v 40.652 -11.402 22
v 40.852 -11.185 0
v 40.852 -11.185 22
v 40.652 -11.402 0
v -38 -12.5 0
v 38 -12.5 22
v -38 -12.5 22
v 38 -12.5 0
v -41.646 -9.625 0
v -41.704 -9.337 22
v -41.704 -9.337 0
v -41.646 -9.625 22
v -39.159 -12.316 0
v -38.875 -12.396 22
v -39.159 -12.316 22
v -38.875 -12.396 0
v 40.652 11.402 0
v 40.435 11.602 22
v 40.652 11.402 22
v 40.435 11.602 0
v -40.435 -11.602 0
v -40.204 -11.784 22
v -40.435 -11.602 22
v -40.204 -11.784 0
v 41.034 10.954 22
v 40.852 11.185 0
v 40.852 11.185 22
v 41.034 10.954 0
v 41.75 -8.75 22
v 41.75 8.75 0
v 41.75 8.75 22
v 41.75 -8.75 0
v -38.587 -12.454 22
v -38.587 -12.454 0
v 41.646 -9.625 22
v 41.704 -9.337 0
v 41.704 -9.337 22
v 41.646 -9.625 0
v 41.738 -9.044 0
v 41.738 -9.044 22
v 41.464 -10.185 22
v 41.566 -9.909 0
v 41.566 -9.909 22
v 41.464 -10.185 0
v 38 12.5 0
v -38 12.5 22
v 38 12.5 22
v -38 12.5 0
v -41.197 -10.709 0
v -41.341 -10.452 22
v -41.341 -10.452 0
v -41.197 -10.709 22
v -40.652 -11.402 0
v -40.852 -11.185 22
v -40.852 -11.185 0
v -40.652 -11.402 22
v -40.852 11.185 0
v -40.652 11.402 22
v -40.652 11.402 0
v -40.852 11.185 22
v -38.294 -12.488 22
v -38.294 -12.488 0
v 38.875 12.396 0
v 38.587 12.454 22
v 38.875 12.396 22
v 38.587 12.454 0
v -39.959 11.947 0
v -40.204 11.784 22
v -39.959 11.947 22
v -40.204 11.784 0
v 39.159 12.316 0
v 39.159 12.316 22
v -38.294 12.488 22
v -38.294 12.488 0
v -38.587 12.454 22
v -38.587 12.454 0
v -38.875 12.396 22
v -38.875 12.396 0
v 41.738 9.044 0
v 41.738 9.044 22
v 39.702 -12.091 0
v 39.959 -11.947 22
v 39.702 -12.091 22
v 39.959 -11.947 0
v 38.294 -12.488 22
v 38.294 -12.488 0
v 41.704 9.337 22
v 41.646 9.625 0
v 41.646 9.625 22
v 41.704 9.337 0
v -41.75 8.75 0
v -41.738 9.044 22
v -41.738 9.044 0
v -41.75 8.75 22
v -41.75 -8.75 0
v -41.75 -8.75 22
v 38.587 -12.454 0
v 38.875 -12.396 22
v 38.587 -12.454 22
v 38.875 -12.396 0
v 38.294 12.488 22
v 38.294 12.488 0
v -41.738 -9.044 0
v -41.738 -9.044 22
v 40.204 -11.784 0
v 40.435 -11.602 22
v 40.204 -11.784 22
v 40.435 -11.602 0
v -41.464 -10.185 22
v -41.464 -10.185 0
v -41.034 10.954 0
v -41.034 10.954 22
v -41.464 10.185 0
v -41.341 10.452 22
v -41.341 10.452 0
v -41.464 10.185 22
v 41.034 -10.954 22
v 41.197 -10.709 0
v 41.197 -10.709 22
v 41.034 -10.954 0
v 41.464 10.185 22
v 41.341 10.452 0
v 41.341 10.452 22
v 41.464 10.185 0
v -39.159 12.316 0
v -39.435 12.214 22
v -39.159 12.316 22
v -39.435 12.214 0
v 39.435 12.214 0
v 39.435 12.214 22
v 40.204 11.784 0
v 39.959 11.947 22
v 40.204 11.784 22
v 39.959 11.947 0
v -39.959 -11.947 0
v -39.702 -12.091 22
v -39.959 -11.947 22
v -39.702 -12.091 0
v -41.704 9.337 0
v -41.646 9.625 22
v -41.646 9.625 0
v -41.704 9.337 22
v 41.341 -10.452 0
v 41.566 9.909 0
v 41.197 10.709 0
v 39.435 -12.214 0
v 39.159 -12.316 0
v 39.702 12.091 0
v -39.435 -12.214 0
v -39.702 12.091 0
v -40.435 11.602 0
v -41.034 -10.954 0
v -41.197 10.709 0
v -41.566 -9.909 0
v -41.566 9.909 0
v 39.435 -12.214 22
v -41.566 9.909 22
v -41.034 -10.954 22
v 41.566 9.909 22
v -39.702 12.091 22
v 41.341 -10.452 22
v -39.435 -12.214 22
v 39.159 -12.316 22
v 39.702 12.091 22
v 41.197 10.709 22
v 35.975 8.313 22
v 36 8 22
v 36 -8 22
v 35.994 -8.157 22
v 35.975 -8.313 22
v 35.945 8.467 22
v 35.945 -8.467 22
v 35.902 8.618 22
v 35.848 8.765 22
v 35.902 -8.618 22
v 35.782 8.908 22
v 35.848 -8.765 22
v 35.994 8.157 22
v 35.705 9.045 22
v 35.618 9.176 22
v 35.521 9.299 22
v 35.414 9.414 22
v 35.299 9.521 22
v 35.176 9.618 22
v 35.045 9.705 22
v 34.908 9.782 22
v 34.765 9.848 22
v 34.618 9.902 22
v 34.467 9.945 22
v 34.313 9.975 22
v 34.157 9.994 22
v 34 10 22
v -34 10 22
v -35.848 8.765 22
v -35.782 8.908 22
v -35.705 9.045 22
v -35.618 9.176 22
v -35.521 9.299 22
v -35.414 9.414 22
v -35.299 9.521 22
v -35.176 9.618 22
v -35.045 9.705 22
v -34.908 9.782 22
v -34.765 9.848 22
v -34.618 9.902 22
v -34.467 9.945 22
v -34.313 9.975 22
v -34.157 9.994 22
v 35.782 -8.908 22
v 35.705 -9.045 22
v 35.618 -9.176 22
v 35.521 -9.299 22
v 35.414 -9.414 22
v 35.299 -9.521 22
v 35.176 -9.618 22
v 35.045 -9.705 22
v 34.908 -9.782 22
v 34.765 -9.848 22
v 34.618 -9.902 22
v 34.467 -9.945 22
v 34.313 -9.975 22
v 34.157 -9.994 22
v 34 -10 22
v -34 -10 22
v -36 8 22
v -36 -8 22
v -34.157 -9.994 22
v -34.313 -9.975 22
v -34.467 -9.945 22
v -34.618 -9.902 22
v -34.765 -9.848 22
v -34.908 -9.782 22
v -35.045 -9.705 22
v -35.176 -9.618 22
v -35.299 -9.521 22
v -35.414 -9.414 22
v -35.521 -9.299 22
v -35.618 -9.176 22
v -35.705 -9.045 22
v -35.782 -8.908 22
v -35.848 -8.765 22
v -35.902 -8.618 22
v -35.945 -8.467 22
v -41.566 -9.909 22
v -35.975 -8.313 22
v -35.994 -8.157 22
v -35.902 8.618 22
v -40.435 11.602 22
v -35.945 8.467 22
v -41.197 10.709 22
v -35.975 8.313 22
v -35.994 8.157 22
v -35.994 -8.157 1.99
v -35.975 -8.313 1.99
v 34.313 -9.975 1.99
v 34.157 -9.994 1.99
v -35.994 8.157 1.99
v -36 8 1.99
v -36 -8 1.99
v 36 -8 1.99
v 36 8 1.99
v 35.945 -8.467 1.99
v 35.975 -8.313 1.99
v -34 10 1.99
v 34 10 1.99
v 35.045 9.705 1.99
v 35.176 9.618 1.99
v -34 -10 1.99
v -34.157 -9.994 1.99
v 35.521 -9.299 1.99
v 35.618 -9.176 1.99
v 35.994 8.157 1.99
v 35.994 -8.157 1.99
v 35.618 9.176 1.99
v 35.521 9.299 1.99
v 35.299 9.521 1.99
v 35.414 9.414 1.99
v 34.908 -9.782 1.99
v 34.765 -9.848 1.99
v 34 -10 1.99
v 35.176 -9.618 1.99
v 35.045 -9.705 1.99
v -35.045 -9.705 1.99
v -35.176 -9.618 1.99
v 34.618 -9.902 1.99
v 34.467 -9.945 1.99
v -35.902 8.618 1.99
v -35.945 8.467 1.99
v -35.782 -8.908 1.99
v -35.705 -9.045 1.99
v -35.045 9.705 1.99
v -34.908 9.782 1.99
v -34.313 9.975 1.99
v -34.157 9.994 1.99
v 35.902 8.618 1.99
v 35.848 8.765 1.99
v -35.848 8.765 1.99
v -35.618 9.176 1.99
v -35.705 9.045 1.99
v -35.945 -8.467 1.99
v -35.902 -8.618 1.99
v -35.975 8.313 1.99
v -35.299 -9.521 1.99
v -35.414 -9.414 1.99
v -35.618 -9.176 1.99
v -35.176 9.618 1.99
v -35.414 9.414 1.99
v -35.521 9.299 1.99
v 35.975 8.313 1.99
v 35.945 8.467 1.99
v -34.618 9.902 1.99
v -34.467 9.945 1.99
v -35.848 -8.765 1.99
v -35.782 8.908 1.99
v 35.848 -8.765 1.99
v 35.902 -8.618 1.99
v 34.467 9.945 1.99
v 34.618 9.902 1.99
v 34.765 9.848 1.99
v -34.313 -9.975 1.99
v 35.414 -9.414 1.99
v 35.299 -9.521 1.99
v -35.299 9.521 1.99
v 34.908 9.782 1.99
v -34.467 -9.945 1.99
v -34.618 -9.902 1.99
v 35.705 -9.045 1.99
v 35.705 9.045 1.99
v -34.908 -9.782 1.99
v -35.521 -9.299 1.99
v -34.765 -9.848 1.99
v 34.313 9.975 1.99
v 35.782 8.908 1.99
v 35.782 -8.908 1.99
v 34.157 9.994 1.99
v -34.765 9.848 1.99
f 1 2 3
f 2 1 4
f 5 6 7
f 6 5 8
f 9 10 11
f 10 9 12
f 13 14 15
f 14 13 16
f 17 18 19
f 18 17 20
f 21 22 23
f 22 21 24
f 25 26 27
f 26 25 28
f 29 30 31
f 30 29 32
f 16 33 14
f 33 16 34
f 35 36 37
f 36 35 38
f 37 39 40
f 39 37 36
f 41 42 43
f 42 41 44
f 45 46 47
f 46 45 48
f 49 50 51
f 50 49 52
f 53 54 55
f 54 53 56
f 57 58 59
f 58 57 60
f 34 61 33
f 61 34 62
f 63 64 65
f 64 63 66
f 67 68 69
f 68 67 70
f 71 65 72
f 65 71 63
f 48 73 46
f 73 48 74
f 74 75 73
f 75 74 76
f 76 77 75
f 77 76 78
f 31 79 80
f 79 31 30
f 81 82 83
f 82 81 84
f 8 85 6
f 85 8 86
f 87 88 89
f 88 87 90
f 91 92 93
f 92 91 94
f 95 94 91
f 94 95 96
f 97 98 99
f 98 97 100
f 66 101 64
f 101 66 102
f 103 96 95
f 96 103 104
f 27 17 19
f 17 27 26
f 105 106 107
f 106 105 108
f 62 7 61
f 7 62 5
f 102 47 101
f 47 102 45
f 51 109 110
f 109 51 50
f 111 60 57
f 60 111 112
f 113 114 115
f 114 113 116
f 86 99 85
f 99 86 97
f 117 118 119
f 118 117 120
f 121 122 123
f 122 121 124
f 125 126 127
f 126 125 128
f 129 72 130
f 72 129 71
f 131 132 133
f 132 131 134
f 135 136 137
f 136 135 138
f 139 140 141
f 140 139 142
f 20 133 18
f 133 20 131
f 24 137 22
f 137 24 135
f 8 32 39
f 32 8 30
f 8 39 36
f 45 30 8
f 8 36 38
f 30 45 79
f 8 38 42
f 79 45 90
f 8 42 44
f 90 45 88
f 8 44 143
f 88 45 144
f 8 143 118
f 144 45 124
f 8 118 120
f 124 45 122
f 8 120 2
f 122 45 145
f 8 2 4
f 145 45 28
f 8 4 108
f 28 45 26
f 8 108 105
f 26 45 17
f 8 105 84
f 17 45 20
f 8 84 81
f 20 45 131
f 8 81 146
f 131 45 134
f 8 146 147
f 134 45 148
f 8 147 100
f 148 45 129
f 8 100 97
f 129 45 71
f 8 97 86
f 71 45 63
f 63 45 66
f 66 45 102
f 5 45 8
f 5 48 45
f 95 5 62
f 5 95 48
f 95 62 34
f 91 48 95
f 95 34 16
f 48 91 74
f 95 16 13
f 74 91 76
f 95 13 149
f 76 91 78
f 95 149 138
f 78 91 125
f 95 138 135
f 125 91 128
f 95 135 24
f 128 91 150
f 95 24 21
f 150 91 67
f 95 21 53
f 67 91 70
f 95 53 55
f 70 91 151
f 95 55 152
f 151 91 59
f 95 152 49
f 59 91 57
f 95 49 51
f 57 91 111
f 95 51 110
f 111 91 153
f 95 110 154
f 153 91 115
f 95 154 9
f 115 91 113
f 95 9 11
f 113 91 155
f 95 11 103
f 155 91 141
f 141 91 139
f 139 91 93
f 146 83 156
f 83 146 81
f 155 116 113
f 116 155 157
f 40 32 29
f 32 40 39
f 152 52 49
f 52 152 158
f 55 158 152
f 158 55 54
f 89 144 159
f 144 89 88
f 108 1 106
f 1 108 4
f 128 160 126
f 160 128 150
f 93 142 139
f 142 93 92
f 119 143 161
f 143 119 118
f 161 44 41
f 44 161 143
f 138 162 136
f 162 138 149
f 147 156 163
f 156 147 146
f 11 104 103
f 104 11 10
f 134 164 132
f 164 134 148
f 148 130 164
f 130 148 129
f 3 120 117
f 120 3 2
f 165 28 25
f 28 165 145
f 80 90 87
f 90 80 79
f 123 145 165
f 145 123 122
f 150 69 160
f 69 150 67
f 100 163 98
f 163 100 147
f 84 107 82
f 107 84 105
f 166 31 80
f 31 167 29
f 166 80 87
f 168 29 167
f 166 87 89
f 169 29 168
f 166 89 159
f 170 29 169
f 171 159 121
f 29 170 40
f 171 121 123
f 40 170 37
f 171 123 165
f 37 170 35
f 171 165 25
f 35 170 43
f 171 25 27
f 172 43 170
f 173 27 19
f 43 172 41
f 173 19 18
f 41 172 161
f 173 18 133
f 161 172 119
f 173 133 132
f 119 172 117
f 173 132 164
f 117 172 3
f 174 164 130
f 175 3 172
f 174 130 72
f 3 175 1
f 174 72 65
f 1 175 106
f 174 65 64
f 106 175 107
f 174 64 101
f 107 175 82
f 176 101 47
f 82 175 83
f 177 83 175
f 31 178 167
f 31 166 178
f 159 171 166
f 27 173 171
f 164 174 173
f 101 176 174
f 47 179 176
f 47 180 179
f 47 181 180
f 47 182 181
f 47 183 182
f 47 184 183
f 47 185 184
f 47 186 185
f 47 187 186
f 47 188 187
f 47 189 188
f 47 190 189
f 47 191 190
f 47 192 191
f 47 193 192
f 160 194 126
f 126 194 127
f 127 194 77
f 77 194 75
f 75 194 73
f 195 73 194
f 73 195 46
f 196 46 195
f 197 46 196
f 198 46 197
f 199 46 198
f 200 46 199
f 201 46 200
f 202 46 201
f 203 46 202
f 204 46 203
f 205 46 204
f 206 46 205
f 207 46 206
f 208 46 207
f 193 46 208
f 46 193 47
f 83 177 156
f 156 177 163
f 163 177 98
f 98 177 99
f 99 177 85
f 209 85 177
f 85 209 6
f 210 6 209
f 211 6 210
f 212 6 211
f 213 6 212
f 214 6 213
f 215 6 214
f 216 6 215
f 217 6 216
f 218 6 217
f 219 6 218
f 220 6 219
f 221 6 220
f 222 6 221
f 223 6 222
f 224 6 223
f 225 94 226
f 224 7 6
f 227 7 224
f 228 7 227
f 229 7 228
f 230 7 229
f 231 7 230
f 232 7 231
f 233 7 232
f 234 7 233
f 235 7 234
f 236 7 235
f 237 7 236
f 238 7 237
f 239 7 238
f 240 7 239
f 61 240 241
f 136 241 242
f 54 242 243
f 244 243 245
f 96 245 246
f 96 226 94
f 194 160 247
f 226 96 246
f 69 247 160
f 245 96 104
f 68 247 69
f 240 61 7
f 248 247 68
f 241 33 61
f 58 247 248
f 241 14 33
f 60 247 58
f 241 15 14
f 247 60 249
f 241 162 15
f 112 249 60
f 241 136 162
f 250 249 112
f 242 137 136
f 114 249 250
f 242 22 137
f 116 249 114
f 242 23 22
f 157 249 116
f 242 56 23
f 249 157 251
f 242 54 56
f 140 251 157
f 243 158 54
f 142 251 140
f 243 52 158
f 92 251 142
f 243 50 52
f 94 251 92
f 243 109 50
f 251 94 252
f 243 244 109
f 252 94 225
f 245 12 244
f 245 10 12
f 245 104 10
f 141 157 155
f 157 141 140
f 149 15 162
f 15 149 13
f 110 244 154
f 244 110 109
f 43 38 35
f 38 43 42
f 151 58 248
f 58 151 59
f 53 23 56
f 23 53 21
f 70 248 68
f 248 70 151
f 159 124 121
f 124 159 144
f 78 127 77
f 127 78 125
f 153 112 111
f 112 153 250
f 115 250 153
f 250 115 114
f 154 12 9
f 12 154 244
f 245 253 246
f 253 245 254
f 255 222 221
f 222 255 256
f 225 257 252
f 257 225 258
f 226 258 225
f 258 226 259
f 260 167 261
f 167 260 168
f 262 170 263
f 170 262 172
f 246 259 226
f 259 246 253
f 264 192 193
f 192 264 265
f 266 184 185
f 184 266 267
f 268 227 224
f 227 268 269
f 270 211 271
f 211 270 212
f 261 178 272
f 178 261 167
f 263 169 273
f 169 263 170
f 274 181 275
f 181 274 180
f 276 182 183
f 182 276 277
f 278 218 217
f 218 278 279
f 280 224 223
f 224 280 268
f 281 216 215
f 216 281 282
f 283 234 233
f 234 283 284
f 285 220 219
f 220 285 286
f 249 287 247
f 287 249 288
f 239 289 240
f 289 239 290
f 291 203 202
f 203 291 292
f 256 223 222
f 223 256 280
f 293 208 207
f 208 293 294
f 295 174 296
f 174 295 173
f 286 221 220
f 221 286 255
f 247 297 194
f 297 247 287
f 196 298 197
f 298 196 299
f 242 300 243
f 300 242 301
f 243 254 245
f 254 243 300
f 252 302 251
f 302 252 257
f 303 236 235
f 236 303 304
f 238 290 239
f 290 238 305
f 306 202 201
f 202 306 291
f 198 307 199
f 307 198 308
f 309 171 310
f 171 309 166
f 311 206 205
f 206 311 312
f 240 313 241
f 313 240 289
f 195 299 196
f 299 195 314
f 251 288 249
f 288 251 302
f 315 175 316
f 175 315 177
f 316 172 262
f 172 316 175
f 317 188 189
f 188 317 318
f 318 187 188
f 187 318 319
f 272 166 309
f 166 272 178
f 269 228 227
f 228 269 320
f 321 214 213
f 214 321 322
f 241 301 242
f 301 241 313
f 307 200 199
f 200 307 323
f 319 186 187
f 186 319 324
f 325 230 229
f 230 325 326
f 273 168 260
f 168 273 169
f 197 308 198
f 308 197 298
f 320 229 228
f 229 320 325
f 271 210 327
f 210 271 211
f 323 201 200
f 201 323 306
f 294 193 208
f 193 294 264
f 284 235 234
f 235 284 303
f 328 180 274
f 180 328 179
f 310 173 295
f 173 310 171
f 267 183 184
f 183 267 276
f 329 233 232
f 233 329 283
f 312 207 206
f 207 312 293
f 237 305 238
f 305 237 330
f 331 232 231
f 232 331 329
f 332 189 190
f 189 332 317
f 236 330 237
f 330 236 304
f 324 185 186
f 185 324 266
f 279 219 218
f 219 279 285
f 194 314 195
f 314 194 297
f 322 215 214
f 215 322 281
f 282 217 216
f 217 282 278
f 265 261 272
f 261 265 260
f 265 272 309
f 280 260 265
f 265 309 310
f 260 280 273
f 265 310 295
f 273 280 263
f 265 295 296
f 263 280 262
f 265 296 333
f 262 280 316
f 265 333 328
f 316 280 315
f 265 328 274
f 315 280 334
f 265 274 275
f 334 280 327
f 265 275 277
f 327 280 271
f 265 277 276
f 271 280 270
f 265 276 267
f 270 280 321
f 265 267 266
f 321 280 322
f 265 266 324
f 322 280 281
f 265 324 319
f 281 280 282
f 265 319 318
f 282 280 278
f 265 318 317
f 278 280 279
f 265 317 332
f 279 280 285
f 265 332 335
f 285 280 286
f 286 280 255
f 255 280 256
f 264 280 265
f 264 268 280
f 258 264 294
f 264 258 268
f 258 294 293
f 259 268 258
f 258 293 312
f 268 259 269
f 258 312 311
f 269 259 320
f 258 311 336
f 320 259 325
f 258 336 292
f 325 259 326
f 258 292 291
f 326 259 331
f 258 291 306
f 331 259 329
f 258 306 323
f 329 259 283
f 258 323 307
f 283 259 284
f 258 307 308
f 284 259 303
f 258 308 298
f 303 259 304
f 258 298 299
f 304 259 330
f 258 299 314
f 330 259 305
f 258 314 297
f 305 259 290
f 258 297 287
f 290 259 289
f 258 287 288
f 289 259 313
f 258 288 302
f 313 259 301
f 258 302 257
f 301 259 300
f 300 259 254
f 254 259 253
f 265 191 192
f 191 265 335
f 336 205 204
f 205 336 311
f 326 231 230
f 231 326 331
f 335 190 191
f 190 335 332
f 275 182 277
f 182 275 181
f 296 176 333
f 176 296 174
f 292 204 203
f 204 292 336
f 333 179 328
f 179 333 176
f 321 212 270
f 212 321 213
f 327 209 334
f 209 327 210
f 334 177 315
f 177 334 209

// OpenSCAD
// file: bambu-x1c.scad
// Bambu Lab X1 Carbon — build volume and dimension reporting

BED_X = 256;
BED_Y = 256;
BED_Z = 256;

// Assert a part fits within the build volume.
// Call with the bounding box dimensions of your part.
module assert_fits(x, y, z) {
  assert(x <= BED_X, str("Part X (", x, "mm) exceeds bed X (", BED_X, "mm)"));
  assert(y <= BED_Y, str("Part Y (", y, "mm) exceeds bed Y (", BED_Y, "mm)"));
  assert(z <= BED_Z, str("Part Z (", z, "mm) exceeds bed Z (", BED_Z, "mm)"));
}

// Echo dimensions in a parseable format for the Node.js pipeline.
// Call at the end of your .scad file with the part's bounding box.
module report_dimensions(x, y, z, label="part") {
  assert_fits(x, y, z);
  echo(str("DIMENSION:", label, ":x=", x));
  echo(str("DIMENSION:", label, ":y=", y));
  echo(str("DIMENSION:", label, ":z=", z));
}
// main file
// =============================================================================
// cavity-fit — Test print for caliper display body cavity fitment
// =============================================================================
// A 20mm-tall cross-section slab of the caliper-test bin's display body
// cavity. Verifies the 72x20mm pocket accepts the HARTE 6-inch caliper
// display body with ~2mm clearance per side.
//
// Parent design: caliper-test (gridfinity-bins/designs/caliper-test/)

include <gridfinity-spec.scad>
include <bambu-x1c.scad>

$fn = 80;

// =============================================================================
// PARAMETERS — derived from parent caliper-test.scad
// =============================================================================

// Caliper dimensions (from measurements.json)
caliper_clearance = 2.0;  // per side

display_body_width     = 68;   // X
display_body_thickness = 16;   // Y

// Pocket dimensions (caliper + clearance) — match parent exactly
display_cavity_x = display_body_width + 2 * caliper_clearance;      // 72
display_cavity_y = display_body_thickness + 2 * caliper_clearance;   // 20

// Wall and corner from parent bin
wall    = GF_WALL_THICKNESS_THICK;   // 1.2
r_outer = GF_BASE_TOP_RADIUS;       // 3.75

// Outer X matches parent bin: gf_bin_width(2) = 83.5
outer_x = gf_bin_width(2);          // 83.5

// Test piece Y: trimmed to show full cavity depth + walls + small margin
// cavity_y (20) + 2*wall (2.4) + extra margin (~2.6) = 25
test_y = 25.0;

// Test piece Z geometry
base_plate_z  = 2.0;   // solid base replacing Gridfinity base
cavity_height = 20.0;  // height of the cavity section
total_z       = base_plate_z + cavity_height;  // 22

// Corner radius for the outer shell — use parent's r_outer on X corners,
// but cap to half the Y extent so the radius is valid
r_shell = min(r_outer, test_y / 2);  // 3.75

// Inner corner radius
r_inner = max(0.1, r_shell - wall);  // 2.55

// Cavity corner radius — same 2mm as parent pocket
r_cavity = 2.0;

// =============================================================================
// HELPER: Rounded rectangle centered at origin, bottom at Z=0
// =============================================================================
module rounded_rect(sx, sy, h, r) {
    cr = min(r, min(sx, sy) / 2);
    hull() {
        for (dx = [-1, 1])
            for (dy = [-1, 1])
                translate([dx * (sx/2 - cr), dy * (sy/2 - cr), 0])
                    cylinder(r=cr, h=h);
    }
}

// =============================================================================
// TEST PIECE ASSEMBLY
// =============================================================================

difference() {
    // Outer shell: full height with rounded corners
    rounded_rect(outer_x, test_y, total_z, r_shell);

    // Cavity: starts at base_plate_z, goes up through the top (open top)
    translate([0, 0, base_plate_z - 0.01])
        rounded_rect(display_cavity_x, display_cavity_y,
                     cavity_height + 0.02, r_cavity);
}

// =============================================================================
// DIMENSION REPORTING
// =============================================================================

// Overall test piece
report_dimensions(outer_x, test_y, total_z, "test_piece");

// Cavity opening
report_dimensions(display_cavity_x, display_cavity_y, cavity_height, "cavity_opening");
